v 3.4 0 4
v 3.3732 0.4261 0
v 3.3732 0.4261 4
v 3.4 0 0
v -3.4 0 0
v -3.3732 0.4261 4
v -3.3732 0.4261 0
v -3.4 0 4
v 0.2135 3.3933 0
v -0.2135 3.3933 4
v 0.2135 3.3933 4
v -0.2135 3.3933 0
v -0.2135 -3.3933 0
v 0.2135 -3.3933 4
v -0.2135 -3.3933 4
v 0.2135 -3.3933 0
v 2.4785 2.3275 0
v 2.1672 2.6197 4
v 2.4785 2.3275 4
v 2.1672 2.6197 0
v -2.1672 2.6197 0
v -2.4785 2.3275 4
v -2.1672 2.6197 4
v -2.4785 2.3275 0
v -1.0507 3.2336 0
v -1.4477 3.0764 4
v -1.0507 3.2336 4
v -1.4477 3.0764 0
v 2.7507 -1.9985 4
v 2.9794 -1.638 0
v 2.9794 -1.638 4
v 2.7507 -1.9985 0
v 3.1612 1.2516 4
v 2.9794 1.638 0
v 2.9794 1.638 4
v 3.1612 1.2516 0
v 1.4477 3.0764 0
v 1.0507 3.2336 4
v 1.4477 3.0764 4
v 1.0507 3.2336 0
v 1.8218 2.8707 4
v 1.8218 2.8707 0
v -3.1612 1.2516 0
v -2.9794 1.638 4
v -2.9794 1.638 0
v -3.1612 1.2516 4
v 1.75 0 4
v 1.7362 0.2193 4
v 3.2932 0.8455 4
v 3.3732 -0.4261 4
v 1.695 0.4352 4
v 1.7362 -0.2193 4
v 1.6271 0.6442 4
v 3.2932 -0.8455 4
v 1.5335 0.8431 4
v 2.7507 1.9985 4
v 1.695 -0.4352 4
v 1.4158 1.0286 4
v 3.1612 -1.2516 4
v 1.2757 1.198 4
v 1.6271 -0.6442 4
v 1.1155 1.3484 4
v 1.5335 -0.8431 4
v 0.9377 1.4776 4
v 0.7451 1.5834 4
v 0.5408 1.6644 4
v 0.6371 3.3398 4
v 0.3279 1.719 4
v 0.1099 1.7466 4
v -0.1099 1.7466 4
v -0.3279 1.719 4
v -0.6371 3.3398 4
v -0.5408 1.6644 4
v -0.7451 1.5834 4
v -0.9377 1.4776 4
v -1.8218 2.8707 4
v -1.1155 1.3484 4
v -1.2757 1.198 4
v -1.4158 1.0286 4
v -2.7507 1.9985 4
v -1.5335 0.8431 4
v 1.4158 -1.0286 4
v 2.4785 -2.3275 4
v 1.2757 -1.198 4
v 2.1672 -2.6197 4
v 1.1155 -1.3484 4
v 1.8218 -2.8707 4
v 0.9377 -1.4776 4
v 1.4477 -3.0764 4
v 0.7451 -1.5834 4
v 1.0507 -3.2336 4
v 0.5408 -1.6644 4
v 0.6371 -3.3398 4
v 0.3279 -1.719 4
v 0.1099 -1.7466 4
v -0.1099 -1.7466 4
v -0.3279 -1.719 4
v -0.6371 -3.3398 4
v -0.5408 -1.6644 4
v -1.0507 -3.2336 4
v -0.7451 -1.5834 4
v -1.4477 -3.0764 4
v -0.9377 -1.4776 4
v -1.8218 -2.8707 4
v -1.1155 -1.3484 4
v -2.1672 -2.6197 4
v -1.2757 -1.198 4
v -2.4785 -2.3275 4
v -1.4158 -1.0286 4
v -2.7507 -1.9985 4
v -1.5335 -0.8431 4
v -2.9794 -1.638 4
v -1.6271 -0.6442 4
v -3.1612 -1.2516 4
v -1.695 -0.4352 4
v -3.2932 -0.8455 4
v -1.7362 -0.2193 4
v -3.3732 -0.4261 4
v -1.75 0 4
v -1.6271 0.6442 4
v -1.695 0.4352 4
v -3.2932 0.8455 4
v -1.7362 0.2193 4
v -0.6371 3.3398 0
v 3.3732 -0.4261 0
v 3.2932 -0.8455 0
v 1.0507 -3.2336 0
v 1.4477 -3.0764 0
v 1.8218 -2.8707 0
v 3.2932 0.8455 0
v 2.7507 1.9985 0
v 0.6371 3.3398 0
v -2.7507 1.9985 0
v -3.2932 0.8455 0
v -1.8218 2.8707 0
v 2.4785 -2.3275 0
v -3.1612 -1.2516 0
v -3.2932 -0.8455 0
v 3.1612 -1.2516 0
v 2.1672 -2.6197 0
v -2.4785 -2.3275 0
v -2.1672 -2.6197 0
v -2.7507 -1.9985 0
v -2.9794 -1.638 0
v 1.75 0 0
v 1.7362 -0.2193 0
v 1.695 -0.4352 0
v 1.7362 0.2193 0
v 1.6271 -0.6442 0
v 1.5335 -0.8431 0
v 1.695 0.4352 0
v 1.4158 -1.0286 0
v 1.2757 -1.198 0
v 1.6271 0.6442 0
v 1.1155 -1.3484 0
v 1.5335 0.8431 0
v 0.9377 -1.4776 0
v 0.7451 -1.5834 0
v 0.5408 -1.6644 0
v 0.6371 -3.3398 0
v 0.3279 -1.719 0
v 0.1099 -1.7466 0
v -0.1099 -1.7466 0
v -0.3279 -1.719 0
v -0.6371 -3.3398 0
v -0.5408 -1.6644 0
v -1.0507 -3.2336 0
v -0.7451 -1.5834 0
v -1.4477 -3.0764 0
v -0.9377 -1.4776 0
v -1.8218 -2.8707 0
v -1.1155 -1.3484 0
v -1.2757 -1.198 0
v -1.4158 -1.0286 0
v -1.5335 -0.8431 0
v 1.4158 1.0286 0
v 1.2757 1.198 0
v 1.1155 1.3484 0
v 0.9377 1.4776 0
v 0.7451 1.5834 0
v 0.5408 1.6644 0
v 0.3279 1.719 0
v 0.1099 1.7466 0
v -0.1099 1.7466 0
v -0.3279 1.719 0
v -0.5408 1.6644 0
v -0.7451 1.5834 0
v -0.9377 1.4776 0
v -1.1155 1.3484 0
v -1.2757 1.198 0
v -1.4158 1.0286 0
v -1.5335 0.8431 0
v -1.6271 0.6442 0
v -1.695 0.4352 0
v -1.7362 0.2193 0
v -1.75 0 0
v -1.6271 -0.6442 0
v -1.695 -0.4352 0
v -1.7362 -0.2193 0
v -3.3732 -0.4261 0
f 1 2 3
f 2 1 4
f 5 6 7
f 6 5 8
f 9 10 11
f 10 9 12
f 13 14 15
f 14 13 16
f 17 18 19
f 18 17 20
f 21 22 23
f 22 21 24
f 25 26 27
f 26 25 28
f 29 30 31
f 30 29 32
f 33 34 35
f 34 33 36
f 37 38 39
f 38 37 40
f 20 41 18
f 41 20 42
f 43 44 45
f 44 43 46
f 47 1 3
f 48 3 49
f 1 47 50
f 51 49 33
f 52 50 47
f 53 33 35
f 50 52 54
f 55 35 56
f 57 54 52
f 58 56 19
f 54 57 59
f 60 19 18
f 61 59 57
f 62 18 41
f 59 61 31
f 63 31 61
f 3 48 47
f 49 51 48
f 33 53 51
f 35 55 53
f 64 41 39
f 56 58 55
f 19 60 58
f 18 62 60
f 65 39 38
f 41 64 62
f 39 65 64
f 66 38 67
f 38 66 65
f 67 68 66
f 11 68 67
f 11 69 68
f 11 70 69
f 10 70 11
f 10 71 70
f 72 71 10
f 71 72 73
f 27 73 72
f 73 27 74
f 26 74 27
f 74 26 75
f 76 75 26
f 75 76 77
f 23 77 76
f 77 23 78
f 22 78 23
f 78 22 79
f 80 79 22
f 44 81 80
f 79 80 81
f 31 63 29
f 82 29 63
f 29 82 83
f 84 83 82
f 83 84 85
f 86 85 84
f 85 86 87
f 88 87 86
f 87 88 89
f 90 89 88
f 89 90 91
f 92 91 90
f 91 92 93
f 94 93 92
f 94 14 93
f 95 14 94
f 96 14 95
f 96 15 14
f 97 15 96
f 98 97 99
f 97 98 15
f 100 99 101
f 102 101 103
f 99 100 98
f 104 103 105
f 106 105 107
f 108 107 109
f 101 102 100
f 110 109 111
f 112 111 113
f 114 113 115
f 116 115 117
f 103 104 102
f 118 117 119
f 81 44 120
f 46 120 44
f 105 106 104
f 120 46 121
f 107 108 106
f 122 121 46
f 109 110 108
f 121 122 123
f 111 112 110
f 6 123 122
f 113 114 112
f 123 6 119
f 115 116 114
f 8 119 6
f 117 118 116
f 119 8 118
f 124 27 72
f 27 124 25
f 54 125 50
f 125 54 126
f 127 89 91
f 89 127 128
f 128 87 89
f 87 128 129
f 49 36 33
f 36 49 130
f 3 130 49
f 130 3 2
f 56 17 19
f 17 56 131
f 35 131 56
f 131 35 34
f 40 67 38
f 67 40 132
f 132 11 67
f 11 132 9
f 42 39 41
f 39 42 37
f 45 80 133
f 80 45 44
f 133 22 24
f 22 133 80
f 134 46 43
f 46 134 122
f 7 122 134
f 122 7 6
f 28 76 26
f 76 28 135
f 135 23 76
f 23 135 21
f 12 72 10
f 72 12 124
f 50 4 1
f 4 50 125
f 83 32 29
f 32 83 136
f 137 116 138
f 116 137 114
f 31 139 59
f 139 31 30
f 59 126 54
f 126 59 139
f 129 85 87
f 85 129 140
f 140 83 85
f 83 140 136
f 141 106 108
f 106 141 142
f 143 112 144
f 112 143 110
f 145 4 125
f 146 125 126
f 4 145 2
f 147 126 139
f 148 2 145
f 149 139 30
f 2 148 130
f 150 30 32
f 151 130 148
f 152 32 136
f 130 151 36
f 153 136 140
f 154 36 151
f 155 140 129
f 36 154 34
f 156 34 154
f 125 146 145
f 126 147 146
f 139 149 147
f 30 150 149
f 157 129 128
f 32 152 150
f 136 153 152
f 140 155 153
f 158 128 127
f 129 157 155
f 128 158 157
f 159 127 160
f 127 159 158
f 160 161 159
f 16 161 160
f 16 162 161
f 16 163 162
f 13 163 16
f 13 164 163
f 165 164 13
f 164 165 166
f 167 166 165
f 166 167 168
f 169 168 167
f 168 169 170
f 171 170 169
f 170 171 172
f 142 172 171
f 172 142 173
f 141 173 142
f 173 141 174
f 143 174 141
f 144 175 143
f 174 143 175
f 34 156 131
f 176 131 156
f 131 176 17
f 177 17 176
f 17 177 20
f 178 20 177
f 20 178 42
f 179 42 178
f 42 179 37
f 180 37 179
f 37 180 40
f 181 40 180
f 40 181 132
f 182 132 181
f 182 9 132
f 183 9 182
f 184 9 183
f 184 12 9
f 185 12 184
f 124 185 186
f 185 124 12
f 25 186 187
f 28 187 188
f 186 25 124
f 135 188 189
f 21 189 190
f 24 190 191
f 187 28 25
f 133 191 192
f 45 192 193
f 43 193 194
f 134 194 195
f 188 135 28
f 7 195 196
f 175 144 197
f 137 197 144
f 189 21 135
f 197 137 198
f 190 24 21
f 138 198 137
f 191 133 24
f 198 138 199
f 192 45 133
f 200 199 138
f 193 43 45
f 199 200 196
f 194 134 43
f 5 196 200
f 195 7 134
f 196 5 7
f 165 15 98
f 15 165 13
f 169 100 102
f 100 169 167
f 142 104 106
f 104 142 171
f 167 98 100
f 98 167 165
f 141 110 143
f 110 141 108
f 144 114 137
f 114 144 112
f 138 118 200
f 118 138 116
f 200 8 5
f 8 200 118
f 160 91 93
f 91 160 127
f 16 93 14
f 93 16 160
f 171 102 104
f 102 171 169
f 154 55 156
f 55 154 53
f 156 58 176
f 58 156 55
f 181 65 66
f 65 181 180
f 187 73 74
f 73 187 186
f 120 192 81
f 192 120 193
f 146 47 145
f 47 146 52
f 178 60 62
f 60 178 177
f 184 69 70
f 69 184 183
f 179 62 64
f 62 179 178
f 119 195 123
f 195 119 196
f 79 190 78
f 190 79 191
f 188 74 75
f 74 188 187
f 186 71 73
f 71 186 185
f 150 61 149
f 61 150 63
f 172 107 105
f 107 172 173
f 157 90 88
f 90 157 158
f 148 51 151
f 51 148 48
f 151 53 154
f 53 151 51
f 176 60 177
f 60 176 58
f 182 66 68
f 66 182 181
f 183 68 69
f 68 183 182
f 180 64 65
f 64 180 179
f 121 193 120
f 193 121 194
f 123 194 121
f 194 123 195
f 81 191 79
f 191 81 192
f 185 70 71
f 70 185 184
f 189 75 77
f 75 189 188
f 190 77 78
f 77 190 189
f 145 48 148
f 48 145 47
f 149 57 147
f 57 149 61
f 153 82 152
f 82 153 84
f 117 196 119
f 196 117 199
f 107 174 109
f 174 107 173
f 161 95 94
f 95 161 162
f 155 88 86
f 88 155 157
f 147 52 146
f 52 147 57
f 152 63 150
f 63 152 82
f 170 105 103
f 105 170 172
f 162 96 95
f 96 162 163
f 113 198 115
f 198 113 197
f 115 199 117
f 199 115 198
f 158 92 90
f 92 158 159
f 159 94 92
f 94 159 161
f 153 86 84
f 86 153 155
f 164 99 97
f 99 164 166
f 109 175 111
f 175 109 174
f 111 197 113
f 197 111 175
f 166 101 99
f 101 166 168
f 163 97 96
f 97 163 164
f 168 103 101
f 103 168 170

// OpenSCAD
$fn=50;

difference() {
   cylinder(d=6.8,h=4); // was 4.8
   translate([0,0,-0.5]) cylinder(d=3.5,h=5); // was 3.2
}
